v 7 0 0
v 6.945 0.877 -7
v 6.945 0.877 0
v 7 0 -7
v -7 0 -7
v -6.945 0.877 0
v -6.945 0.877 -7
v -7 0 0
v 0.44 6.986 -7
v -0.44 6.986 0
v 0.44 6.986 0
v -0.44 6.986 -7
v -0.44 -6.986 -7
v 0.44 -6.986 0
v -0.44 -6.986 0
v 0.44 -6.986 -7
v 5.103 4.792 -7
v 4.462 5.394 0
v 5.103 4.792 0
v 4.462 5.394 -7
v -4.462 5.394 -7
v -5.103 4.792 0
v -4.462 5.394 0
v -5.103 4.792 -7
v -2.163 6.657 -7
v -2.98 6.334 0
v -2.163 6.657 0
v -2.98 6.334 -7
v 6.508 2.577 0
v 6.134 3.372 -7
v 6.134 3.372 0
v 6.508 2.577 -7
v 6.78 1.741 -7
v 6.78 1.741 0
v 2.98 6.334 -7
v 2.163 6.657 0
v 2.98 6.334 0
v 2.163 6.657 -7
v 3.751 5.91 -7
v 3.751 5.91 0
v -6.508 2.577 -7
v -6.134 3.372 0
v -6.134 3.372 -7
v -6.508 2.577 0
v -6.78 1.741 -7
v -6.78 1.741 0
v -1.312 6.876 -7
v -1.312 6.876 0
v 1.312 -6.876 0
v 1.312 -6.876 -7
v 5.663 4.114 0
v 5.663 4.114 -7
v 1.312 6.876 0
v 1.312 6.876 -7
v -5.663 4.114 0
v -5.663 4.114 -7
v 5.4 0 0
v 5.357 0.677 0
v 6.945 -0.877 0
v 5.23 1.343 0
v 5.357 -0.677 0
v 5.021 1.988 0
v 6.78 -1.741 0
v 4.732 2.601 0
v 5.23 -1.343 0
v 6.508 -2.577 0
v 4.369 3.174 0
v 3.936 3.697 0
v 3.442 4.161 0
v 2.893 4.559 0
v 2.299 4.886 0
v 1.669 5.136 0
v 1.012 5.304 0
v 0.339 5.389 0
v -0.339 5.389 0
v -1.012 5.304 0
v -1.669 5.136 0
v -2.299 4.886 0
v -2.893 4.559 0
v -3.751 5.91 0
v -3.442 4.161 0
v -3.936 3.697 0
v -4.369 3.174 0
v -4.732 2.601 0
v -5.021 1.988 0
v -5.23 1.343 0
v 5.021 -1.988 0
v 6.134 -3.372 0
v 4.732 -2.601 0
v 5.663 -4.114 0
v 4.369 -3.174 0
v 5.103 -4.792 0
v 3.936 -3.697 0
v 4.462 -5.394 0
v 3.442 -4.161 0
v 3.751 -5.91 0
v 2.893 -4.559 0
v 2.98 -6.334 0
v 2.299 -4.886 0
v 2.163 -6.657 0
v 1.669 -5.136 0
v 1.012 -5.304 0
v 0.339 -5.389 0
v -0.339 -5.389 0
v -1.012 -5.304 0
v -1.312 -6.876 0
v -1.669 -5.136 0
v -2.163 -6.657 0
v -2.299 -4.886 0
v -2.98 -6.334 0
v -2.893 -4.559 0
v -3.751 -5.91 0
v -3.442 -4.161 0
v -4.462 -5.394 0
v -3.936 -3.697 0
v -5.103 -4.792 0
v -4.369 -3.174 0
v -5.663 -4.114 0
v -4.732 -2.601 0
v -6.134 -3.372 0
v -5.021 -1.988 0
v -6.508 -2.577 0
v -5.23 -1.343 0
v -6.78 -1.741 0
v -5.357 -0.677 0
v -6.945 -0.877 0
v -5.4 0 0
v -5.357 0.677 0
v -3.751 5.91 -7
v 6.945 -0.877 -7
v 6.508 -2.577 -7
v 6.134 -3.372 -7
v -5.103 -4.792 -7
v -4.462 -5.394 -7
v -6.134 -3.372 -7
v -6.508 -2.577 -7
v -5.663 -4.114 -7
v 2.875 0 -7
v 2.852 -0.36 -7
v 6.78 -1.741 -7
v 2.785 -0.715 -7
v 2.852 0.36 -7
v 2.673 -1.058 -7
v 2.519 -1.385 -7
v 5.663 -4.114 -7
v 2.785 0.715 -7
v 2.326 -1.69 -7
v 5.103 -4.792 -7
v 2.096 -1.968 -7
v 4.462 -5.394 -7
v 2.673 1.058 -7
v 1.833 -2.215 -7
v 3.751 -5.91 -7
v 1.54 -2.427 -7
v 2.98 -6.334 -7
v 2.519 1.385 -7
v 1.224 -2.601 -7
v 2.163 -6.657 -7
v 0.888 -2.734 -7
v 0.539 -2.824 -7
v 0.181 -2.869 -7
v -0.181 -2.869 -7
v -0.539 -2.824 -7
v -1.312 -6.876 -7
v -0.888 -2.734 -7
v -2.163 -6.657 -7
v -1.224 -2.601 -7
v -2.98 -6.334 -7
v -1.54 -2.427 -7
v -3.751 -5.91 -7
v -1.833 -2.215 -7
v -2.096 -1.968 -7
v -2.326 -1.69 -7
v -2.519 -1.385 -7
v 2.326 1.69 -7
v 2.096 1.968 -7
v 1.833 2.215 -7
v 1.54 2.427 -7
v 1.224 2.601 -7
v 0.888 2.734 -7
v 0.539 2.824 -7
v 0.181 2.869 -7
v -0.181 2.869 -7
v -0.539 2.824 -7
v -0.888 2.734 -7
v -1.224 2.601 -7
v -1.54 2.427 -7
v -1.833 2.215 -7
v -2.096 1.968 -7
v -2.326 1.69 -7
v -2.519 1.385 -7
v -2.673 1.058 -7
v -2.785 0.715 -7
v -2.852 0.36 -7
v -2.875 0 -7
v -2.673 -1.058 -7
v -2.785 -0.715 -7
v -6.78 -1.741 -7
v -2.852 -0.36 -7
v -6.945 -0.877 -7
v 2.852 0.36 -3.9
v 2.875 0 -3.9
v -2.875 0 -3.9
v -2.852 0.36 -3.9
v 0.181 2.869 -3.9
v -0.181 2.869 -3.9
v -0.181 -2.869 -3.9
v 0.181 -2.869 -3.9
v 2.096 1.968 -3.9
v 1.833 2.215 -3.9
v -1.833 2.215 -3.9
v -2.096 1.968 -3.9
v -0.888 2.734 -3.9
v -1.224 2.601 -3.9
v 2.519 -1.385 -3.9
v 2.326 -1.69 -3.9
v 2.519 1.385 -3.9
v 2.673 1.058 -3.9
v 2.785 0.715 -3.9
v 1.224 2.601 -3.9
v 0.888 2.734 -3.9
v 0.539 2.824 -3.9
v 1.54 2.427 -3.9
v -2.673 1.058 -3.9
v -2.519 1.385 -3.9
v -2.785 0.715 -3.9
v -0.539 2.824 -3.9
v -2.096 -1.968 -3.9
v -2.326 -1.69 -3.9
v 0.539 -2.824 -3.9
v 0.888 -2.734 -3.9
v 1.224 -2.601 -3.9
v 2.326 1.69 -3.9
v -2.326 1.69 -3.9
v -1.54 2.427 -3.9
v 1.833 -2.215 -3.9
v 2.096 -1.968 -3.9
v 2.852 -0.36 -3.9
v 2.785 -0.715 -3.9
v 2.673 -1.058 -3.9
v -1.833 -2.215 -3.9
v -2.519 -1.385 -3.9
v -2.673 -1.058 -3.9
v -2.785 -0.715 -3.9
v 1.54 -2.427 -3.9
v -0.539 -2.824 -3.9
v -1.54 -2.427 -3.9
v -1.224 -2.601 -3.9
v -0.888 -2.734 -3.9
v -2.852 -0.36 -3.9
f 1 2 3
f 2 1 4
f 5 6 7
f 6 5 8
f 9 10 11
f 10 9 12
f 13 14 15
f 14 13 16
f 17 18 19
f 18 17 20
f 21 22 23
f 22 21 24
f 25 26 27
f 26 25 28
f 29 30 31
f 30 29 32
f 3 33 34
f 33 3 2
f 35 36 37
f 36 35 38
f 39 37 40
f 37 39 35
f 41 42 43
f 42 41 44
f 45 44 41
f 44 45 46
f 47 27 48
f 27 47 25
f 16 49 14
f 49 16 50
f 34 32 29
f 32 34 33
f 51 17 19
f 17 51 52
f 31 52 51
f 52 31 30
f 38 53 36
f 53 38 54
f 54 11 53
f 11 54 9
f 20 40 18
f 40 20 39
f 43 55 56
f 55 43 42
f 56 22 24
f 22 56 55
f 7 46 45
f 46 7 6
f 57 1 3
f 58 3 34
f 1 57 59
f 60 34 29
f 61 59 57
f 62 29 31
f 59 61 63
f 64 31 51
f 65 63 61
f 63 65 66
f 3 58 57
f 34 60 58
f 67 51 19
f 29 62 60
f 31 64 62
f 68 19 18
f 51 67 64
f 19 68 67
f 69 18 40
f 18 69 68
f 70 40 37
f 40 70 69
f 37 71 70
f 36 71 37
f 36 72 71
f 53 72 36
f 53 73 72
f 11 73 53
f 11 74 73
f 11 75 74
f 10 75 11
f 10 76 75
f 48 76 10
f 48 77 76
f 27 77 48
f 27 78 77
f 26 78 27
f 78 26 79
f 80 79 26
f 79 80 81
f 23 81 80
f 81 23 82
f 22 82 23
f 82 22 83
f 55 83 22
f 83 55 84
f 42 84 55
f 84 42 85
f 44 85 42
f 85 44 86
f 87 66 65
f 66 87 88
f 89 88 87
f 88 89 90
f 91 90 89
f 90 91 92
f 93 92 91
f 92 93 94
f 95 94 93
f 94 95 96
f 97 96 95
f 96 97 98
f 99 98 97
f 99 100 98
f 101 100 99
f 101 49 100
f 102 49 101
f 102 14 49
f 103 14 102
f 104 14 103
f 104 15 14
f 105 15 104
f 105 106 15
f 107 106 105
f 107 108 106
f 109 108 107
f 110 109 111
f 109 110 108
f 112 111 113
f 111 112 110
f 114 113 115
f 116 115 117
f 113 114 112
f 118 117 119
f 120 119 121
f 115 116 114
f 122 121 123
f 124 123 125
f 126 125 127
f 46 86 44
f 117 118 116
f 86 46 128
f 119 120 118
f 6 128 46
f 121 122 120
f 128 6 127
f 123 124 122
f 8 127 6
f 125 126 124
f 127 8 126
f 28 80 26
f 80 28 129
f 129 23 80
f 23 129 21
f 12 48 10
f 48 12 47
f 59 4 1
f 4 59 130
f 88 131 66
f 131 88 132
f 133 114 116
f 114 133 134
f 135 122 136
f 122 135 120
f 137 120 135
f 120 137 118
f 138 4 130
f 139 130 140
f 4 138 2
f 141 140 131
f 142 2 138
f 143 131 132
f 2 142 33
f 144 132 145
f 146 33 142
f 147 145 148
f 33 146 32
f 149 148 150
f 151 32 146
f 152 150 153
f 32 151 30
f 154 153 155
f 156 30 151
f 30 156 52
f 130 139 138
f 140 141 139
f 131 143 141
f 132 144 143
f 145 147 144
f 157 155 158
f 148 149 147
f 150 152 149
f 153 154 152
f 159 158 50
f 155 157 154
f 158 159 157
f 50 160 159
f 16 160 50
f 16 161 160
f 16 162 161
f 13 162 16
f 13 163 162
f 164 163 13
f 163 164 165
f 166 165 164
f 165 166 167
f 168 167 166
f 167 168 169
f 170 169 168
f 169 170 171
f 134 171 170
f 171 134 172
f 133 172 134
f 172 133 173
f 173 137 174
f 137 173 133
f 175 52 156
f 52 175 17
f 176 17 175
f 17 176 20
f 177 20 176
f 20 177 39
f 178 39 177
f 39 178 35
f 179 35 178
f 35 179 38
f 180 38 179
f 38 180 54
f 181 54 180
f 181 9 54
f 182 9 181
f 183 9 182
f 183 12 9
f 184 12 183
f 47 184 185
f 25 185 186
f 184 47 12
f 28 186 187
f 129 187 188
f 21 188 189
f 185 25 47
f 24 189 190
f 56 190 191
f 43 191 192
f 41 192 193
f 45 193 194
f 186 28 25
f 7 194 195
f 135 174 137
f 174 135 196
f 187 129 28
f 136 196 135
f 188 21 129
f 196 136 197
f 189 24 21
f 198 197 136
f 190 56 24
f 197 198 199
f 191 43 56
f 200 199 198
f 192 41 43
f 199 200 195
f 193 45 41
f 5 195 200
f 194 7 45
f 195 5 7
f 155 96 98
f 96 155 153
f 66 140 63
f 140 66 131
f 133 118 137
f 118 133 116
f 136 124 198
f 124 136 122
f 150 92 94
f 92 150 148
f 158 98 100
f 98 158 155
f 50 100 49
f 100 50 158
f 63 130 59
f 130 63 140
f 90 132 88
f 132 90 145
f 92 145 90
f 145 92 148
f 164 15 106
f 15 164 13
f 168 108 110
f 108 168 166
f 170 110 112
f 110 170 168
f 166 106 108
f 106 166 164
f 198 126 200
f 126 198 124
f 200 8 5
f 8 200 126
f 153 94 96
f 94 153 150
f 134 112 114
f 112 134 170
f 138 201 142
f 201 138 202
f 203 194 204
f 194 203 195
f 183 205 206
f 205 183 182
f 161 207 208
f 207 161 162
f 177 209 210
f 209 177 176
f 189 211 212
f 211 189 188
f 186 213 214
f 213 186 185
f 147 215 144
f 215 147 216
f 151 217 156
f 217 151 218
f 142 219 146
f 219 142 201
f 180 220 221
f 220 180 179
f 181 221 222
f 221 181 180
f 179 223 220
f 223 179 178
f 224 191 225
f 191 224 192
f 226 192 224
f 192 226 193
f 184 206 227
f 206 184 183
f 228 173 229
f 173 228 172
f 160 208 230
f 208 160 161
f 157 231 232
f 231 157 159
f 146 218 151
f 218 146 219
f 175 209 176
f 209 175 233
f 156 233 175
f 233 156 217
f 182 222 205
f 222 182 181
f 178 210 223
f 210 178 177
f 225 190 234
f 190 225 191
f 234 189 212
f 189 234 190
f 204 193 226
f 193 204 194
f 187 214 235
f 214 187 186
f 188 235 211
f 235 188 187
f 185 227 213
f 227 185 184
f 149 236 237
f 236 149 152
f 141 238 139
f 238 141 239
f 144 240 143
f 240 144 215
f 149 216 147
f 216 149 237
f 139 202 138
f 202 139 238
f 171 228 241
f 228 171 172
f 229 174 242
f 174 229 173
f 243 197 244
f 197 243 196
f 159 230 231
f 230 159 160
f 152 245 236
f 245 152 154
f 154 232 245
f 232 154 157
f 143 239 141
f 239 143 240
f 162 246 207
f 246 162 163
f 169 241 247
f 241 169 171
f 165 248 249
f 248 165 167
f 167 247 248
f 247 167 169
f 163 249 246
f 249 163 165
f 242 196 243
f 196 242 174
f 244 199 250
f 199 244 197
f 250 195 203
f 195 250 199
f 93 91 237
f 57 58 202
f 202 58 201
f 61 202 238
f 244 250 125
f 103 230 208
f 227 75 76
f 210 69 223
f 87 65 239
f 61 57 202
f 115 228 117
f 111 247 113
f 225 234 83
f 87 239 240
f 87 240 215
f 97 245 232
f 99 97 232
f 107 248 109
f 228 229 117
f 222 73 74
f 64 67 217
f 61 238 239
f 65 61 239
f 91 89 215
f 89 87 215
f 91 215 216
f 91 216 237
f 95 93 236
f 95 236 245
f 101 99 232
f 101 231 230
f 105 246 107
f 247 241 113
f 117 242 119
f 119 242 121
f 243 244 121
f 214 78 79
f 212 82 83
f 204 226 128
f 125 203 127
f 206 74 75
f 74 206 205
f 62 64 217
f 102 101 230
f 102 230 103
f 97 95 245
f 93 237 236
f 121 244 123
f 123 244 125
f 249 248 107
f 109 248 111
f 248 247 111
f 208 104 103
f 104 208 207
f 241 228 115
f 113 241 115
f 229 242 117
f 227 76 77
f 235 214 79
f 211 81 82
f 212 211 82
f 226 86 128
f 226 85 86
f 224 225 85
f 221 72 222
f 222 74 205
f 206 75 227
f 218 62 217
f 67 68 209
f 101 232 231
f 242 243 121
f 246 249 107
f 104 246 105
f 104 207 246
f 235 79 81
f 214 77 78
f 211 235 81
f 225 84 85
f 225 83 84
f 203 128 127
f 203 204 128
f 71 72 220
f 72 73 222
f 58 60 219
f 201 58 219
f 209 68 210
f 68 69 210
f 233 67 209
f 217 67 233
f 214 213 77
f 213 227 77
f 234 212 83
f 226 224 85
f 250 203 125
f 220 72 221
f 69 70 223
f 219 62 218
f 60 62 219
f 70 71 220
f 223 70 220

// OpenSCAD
$fn = 50;


difference() {
	union() {
		translate(v = [0, 0, -7.0000000000]) {
			cylinder(h = 7, r = 7.0000000000);
		}
		translate(v = [0, 0, -9.0000000000]) {
			cylinder(h = 9, r = 2.8750000000);
		}
	}
	union() {
		translate(v = [0, 0, 0]) {
			rotate(a = [0, 0, 0]) {
				difference() {
					union() {
						#translate(v = [0, 0, -9.0000000000]) {
							cylinder(h = 9, r = 2.6000000000);
						}
						#translate(v = [0, 0, -3.9000000000]) {
							cylinder(h = 3.9000000000, r1 = 2.8750000000, r2 = 5.4000000000);
						}
						#translate(v = [0, 0, -9.0000000000]) {
							cylinder(h = 9, r = 2.8750000000);
						}
						#translate(v = [0, 0, -9.0000000000]) {
							cylinder(h = 9, r = 2.6000000000);
						}
					}
					union();
				}
			}
		}
	}
}
